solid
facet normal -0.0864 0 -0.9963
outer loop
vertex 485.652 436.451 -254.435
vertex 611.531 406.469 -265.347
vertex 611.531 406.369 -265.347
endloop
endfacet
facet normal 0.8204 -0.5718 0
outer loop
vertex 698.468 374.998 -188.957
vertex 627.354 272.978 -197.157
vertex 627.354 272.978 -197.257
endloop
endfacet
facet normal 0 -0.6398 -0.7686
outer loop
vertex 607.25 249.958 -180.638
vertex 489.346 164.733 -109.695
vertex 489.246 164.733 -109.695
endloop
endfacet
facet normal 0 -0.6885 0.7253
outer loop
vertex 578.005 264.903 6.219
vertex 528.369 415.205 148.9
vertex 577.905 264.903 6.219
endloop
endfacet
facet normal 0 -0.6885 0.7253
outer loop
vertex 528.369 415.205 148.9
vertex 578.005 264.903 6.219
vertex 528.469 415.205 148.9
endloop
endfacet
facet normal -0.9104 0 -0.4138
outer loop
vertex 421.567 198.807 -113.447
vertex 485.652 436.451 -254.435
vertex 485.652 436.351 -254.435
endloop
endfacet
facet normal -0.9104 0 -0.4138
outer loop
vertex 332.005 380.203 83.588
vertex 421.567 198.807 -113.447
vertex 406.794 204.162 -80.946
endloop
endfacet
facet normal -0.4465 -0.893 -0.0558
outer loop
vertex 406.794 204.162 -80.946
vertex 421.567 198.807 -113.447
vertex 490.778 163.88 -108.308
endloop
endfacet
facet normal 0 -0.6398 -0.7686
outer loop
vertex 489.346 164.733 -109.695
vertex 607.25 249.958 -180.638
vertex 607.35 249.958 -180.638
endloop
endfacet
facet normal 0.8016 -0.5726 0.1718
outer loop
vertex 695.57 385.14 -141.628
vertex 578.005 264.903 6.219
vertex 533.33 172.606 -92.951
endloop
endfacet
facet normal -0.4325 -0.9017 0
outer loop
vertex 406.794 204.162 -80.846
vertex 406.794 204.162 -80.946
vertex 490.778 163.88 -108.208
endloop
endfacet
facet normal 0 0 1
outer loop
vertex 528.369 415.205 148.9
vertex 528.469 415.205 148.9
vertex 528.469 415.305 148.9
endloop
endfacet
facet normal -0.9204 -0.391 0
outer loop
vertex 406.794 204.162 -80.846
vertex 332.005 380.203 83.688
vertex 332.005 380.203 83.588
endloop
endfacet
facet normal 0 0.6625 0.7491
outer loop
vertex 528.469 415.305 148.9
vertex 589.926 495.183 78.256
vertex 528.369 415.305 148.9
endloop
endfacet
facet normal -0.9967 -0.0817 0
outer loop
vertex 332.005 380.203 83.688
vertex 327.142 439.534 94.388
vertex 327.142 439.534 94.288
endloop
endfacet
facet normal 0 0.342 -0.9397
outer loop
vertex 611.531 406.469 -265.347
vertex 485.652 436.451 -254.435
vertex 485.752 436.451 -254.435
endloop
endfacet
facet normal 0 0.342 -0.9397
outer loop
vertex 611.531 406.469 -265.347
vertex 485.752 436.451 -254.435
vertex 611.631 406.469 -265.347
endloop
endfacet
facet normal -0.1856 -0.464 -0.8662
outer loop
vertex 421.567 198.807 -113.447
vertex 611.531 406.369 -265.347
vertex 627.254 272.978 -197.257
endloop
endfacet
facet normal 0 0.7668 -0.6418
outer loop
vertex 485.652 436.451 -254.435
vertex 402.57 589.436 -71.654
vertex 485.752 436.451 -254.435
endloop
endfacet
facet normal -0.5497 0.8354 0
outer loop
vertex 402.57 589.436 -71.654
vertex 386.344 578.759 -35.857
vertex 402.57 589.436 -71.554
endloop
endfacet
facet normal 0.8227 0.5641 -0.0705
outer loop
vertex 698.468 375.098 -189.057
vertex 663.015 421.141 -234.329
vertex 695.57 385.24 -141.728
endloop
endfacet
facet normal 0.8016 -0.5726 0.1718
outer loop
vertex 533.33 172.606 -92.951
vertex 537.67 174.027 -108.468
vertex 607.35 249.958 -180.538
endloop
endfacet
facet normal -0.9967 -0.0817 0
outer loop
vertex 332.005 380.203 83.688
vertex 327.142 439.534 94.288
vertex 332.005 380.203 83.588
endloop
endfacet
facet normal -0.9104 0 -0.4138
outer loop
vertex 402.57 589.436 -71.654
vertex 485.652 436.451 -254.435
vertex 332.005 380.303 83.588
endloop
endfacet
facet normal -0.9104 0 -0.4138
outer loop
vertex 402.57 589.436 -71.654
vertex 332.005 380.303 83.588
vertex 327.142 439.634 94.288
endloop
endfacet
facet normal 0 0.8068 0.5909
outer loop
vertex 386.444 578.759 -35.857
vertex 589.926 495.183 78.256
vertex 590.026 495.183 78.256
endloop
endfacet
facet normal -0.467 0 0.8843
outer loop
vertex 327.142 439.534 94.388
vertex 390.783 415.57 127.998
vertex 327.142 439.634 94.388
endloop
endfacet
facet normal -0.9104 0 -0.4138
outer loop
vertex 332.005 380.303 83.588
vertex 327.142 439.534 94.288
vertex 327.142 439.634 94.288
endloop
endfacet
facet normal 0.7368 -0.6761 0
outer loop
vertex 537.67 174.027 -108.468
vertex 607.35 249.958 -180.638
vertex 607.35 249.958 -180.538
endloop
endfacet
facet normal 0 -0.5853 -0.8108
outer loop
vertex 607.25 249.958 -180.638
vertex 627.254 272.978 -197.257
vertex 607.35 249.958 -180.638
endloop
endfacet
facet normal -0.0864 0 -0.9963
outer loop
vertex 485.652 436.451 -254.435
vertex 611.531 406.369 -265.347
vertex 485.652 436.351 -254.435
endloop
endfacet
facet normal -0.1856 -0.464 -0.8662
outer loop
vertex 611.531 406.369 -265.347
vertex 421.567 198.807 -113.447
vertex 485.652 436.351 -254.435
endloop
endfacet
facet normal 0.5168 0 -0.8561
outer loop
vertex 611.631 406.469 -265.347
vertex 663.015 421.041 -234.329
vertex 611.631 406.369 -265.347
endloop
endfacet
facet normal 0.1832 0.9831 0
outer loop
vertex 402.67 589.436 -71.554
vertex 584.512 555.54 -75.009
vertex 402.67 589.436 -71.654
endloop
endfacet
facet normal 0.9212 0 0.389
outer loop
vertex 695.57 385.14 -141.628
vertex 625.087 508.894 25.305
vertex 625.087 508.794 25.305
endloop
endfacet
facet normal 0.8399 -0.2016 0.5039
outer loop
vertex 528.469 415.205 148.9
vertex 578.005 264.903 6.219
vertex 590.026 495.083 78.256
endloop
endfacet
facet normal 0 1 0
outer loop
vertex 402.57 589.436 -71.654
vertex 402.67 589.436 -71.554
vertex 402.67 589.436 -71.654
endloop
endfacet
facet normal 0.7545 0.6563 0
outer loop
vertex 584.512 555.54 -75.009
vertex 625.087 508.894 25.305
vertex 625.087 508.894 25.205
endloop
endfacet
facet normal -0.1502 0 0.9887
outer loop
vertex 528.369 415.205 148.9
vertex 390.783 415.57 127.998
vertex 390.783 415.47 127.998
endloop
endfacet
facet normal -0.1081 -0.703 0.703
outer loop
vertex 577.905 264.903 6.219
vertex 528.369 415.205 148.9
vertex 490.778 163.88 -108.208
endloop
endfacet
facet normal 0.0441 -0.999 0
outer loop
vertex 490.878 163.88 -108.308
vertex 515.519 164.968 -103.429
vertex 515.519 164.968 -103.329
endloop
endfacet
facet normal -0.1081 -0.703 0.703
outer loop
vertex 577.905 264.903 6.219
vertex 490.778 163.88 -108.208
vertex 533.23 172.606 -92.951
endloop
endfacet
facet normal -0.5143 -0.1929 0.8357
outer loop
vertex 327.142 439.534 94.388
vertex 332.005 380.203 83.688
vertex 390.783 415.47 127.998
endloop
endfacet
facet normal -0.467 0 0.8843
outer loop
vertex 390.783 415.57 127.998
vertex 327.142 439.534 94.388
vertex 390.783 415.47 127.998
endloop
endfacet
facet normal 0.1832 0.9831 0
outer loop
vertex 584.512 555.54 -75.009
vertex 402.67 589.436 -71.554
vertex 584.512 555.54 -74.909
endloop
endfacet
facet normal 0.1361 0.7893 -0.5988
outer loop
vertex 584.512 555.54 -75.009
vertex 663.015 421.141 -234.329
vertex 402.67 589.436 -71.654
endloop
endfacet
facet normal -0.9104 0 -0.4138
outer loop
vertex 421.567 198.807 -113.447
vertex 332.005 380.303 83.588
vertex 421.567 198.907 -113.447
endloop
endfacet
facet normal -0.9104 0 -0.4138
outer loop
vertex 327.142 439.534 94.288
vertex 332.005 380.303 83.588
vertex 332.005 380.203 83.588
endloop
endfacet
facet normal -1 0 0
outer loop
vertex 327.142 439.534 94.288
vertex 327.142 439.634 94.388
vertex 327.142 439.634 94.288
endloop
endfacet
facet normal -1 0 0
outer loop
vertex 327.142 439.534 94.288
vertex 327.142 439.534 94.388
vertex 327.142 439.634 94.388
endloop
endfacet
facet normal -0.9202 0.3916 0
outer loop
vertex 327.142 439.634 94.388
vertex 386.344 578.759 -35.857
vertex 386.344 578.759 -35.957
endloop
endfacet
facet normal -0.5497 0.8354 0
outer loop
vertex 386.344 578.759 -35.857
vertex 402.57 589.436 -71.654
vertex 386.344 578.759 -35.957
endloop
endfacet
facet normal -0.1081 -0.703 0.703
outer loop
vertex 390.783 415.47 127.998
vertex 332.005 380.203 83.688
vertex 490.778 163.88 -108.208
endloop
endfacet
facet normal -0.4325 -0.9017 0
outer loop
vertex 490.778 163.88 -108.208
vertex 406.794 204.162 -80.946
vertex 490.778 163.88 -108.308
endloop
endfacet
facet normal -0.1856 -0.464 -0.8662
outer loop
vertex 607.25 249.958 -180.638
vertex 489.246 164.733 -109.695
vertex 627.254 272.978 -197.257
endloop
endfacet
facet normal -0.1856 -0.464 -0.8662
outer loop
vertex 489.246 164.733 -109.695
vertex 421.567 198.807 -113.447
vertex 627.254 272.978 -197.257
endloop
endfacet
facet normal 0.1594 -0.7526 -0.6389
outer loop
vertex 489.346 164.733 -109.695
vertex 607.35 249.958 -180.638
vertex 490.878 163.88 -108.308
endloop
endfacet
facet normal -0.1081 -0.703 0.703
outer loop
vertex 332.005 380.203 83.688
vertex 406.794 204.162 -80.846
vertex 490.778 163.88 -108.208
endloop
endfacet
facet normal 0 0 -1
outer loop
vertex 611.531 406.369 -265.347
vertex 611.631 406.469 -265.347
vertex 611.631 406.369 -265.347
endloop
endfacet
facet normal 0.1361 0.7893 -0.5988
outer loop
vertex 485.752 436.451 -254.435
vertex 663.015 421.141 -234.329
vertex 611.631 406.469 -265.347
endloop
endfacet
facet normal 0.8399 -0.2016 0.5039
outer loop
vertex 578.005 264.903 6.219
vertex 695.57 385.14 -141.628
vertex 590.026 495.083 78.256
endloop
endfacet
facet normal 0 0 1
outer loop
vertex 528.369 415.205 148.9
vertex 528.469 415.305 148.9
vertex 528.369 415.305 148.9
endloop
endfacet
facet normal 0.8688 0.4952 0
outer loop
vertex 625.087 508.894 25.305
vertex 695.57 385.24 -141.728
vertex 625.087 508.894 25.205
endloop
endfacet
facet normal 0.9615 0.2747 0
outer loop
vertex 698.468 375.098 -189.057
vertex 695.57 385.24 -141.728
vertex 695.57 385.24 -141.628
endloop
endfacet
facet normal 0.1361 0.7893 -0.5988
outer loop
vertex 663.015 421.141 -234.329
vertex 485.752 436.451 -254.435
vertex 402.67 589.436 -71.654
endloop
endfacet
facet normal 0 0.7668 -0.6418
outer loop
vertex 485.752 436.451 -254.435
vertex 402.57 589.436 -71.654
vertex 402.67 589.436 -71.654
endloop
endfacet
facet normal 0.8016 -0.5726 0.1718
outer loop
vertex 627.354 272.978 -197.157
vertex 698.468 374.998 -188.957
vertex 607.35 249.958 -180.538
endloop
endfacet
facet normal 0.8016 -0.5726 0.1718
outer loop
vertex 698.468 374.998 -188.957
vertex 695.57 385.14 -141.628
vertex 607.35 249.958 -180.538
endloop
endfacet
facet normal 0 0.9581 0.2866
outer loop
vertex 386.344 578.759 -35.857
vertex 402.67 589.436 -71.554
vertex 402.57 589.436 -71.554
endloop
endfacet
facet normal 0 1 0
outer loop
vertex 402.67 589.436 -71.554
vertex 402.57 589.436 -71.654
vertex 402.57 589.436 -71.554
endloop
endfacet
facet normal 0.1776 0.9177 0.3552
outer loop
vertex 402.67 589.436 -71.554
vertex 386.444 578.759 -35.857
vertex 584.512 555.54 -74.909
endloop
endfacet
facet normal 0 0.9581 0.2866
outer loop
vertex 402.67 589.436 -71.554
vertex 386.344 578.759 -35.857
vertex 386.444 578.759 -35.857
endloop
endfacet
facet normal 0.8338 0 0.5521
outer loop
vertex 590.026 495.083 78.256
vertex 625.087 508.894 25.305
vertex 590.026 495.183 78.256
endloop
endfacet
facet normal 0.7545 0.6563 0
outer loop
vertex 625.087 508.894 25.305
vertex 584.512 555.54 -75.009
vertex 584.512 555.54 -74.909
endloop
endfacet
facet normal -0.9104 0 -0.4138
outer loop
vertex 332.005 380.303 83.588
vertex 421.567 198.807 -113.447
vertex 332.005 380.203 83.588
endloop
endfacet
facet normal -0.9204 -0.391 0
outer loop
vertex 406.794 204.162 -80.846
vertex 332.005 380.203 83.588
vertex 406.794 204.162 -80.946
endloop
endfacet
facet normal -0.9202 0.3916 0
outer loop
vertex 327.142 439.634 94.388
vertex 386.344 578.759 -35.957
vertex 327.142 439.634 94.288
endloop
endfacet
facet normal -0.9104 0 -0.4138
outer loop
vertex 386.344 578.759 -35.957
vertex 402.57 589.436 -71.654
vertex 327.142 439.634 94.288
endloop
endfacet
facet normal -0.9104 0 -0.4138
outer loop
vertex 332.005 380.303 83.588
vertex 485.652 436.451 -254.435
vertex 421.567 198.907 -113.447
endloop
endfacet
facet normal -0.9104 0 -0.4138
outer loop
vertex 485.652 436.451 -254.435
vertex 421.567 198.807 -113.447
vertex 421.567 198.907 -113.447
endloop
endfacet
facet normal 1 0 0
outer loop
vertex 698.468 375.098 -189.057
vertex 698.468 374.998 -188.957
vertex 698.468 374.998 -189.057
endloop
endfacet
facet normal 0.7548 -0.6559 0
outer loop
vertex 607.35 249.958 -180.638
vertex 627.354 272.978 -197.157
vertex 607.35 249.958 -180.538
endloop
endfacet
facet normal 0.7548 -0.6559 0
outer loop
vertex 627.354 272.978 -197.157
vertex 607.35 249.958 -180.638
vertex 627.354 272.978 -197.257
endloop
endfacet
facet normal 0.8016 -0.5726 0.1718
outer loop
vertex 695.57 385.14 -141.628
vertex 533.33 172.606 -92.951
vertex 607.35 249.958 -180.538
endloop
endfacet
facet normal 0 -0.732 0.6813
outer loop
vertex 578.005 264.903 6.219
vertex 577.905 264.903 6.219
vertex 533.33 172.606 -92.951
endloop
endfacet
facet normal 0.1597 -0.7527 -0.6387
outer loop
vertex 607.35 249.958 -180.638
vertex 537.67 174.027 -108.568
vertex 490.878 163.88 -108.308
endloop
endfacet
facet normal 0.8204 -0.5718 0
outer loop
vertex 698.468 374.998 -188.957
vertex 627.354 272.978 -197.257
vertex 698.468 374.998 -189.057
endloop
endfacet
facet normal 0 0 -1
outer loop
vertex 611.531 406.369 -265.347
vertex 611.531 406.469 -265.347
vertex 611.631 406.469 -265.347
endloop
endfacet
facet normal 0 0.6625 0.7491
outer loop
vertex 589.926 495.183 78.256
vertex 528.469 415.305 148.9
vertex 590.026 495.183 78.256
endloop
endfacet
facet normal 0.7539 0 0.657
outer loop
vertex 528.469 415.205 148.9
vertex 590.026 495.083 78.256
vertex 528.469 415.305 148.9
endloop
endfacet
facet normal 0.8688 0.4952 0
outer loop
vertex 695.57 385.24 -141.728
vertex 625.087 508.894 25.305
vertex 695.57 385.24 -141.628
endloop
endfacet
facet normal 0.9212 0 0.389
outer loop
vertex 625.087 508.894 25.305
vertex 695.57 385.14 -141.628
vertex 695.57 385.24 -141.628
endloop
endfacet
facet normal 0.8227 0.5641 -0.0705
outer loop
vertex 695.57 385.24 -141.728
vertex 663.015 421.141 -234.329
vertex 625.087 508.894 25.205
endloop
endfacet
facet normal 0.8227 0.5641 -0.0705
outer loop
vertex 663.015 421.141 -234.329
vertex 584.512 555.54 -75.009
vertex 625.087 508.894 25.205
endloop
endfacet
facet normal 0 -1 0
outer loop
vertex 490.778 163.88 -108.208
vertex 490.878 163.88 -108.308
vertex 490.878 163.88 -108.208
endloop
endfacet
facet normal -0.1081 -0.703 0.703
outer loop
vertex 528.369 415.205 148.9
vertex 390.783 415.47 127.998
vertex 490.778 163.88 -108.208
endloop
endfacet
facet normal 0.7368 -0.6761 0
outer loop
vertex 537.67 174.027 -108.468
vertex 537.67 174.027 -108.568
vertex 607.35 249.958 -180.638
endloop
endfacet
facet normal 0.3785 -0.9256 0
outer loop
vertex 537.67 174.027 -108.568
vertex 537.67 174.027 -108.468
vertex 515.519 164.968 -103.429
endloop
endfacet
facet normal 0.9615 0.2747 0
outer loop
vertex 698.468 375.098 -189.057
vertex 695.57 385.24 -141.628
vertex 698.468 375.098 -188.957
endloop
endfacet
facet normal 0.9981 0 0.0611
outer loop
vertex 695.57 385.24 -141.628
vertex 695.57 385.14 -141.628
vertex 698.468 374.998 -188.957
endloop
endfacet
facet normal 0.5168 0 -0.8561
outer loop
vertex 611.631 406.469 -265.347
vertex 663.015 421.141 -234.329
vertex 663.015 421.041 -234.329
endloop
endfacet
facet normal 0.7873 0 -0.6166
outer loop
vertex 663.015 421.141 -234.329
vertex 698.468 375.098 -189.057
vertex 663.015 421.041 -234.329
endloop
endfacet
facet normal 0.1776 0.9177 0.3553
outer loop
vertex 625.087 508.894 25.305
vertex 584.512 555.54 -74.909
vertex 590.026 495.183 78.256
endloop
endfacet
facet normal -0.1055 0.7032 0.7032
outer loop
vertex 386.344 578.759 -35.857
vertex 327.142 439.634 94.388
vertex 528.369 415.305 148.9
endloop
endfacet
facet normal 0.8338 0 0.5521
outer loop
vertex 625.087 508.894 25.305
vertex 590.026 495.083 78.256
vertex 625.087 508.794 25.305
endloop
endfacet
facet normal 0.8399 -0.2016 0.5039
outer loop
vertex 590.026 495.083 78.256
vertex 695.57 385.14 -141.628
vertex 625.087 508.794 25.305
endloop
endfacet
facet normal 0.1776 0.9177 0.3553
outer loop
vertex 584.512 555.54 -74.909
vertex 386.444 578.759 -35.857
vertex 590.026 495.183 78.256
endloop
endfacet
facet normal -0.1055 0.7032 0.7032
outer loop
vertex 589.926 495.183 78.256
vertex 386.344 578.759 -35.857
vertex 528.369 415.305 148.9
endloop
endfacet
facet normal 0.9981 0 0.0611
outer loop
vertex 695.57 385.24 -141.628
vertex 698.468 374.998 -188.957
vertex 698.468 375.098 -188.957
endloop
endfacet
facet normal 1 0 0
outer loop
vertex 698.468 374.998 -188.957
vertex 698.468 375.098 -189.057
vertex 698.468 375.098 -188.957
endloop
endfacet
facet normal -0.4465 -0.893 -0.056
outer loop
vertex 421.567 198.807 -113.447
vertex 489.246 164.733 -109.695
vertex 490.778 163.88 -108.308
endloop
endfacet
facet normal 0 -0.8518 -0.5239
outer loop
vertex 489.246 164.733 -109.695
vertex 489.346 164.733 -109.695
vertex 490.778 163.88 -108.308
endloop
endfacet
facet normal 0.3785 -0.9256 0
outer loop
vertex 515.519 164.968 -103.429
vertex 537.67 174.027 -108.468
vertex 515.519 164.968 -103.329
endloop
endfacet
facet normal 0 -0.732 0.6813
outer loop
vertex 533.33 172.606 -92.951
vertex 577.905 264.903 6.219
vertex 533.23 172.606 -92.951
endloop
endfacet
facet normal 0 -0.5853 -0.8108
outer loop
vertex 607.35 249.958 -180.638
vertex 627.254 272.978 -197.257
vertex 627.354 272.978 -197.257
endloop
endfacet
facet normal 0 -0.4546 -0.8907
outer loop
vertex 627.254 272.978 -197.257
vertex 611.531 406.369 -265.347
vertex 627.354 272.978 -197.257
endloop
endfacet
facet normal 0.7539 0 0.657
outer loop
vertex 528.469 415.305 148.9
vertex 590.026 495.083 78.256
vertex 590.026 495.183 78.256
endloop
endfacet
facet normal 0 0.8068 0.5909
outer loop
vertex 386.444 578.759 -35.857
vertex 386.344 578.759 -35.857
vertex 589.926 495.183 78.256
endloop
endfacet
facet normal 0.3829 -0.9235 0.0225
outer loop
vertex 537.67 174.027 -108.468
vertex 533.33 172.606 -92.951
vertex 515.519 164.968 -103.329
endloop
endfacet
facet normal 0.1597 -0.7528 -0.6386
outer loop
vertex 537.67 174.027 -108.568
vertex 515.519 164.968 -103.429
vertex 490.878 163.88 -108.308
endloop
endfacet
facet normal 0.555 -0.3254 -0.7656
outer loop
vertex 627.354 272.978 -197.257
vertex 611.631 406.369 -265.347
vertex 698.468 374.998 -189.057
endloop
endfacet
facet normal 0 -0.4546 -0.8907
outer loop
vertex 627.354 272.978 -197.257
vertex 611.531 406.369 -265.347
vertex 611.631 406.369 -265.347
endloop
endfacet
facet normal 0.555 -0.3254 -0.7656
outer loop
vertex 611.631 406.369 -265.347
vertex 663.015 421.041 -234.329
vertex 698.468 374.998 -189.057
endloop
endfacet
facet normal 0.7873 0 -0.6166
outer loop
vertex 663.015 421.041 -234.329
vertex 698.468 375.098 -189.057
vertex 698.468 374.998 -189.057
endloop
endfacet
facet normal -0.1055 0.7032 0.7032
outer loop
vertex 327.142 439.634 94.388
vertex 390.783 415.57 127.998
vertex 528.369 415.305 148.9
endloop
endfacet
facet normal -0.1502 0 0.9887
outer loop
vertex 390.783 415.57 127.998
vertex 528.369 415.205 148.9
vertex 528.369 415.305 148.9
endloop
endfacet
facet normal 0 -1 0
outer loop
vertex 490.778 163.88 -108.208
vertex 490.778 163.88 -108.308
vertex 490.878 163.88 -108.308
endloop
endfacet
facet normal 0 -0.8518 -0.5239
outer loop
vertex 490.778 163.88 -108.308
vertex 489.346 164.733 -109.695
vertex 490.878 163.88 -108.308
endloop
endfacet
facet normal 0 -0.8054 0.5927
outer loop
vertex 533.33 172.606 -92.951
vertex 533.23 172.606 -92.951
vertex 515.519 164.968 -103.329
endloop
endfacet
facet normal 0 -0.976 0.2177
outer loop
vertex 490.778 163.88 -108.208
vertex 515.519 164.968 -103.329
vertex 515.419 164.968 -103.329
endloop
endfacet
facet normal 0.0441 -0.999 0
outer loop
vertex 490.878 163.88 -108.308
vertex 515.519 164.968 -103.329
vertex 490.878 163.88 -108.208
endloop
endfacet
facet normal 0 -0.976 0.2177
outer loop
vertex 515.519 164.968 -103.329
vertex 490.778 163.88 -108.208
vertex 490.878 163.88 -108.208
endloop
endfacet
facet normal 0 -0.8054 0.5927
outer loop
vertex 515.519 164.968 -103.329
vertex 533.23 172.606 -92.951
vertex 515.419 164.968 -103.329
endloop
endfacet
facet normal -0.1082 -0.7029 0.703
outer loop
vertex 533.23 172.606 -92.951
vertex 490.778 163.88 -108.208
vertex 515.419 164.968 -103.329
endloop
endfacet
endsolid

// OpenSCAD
hull(){ translate([406.793819411,204.162240464,-80.946402704])cube(0.1,0.1,0.1);
translate([421.56665984,198.807085808,-113.446651649])cube(0.1,0.1,0.1);
translate([490.777510268,163.880470188,-108.307605155])cube(0.1,0.1,0.1);
translate([489.245786664,164.733068146,-109.695383649])cube(0.1,0.1,0.1);
translate([332.005208333,380.203125,83.5885416667])cube(0.1,0.1,0.1);
translate([485.652191928,436.350791415,-254.434822242])cube(0.1,0.1,0.1);
translate([611.530622033,406.369238885,-265.347225553])cube(0.1,0.1,0.1);
translate([515.418749488,164.968040646,-103.429074818])cube(0.1,0.1,0.1);
translate([327.142038946,439.533791523,94.2875143184])cube(0.1,0.1,0.1);
translate([390.782747604,415.469648562,127.897763578])cube(0.1,0.1,0.1);
translate([528.369036713,415.205059545,148.800295962])cube(0.1,0.1,0.1);
translate([662.915147174,421.040961188,-234.328926804])cube(0.1,0.1,0.1);
translate([537.569840103,174.027292777,-108.56827789])cube(0.1,0.1,0.1);
translate([533.22956872,172.60614197,-93.0508474576])cube(0.1,0.1,0.1);
translate([577.905195116,264.90304046,6.11922432368])cube(0.1,0.1,0.1);
translate([627.253551597,272.977933223,-197.256796712])cube(0.1,0.1,0.1);
translate([607.249700838,249.958117272,-180.638213004])cube(0.1,0.1,0.1);
translate([698.367942998,374.997913791,-189.057354688])cube(0.1,0.1,0.1);
translate([695.470208184,385.139985642,-141.727686049])cube(0.1,0.1,0.1);
translate([584.412044827,555.439696498,-75.0085717007])cube(0.1,0.1,0.1);
translate([402.570093458,589.336448598,-71.6542056075])cube(0.1,0.1,0.1);
translate([386.344137274,578.658722593,-35.9571020019])cube(0.1,0.1,0.1);
translate([589.926271,495.082899274,78.1560413763])cube(0.1,0.1,0.1);
translate([624.987437186,508.793969849,25.2051926298])cube(0.1,0.1,0.1); }
